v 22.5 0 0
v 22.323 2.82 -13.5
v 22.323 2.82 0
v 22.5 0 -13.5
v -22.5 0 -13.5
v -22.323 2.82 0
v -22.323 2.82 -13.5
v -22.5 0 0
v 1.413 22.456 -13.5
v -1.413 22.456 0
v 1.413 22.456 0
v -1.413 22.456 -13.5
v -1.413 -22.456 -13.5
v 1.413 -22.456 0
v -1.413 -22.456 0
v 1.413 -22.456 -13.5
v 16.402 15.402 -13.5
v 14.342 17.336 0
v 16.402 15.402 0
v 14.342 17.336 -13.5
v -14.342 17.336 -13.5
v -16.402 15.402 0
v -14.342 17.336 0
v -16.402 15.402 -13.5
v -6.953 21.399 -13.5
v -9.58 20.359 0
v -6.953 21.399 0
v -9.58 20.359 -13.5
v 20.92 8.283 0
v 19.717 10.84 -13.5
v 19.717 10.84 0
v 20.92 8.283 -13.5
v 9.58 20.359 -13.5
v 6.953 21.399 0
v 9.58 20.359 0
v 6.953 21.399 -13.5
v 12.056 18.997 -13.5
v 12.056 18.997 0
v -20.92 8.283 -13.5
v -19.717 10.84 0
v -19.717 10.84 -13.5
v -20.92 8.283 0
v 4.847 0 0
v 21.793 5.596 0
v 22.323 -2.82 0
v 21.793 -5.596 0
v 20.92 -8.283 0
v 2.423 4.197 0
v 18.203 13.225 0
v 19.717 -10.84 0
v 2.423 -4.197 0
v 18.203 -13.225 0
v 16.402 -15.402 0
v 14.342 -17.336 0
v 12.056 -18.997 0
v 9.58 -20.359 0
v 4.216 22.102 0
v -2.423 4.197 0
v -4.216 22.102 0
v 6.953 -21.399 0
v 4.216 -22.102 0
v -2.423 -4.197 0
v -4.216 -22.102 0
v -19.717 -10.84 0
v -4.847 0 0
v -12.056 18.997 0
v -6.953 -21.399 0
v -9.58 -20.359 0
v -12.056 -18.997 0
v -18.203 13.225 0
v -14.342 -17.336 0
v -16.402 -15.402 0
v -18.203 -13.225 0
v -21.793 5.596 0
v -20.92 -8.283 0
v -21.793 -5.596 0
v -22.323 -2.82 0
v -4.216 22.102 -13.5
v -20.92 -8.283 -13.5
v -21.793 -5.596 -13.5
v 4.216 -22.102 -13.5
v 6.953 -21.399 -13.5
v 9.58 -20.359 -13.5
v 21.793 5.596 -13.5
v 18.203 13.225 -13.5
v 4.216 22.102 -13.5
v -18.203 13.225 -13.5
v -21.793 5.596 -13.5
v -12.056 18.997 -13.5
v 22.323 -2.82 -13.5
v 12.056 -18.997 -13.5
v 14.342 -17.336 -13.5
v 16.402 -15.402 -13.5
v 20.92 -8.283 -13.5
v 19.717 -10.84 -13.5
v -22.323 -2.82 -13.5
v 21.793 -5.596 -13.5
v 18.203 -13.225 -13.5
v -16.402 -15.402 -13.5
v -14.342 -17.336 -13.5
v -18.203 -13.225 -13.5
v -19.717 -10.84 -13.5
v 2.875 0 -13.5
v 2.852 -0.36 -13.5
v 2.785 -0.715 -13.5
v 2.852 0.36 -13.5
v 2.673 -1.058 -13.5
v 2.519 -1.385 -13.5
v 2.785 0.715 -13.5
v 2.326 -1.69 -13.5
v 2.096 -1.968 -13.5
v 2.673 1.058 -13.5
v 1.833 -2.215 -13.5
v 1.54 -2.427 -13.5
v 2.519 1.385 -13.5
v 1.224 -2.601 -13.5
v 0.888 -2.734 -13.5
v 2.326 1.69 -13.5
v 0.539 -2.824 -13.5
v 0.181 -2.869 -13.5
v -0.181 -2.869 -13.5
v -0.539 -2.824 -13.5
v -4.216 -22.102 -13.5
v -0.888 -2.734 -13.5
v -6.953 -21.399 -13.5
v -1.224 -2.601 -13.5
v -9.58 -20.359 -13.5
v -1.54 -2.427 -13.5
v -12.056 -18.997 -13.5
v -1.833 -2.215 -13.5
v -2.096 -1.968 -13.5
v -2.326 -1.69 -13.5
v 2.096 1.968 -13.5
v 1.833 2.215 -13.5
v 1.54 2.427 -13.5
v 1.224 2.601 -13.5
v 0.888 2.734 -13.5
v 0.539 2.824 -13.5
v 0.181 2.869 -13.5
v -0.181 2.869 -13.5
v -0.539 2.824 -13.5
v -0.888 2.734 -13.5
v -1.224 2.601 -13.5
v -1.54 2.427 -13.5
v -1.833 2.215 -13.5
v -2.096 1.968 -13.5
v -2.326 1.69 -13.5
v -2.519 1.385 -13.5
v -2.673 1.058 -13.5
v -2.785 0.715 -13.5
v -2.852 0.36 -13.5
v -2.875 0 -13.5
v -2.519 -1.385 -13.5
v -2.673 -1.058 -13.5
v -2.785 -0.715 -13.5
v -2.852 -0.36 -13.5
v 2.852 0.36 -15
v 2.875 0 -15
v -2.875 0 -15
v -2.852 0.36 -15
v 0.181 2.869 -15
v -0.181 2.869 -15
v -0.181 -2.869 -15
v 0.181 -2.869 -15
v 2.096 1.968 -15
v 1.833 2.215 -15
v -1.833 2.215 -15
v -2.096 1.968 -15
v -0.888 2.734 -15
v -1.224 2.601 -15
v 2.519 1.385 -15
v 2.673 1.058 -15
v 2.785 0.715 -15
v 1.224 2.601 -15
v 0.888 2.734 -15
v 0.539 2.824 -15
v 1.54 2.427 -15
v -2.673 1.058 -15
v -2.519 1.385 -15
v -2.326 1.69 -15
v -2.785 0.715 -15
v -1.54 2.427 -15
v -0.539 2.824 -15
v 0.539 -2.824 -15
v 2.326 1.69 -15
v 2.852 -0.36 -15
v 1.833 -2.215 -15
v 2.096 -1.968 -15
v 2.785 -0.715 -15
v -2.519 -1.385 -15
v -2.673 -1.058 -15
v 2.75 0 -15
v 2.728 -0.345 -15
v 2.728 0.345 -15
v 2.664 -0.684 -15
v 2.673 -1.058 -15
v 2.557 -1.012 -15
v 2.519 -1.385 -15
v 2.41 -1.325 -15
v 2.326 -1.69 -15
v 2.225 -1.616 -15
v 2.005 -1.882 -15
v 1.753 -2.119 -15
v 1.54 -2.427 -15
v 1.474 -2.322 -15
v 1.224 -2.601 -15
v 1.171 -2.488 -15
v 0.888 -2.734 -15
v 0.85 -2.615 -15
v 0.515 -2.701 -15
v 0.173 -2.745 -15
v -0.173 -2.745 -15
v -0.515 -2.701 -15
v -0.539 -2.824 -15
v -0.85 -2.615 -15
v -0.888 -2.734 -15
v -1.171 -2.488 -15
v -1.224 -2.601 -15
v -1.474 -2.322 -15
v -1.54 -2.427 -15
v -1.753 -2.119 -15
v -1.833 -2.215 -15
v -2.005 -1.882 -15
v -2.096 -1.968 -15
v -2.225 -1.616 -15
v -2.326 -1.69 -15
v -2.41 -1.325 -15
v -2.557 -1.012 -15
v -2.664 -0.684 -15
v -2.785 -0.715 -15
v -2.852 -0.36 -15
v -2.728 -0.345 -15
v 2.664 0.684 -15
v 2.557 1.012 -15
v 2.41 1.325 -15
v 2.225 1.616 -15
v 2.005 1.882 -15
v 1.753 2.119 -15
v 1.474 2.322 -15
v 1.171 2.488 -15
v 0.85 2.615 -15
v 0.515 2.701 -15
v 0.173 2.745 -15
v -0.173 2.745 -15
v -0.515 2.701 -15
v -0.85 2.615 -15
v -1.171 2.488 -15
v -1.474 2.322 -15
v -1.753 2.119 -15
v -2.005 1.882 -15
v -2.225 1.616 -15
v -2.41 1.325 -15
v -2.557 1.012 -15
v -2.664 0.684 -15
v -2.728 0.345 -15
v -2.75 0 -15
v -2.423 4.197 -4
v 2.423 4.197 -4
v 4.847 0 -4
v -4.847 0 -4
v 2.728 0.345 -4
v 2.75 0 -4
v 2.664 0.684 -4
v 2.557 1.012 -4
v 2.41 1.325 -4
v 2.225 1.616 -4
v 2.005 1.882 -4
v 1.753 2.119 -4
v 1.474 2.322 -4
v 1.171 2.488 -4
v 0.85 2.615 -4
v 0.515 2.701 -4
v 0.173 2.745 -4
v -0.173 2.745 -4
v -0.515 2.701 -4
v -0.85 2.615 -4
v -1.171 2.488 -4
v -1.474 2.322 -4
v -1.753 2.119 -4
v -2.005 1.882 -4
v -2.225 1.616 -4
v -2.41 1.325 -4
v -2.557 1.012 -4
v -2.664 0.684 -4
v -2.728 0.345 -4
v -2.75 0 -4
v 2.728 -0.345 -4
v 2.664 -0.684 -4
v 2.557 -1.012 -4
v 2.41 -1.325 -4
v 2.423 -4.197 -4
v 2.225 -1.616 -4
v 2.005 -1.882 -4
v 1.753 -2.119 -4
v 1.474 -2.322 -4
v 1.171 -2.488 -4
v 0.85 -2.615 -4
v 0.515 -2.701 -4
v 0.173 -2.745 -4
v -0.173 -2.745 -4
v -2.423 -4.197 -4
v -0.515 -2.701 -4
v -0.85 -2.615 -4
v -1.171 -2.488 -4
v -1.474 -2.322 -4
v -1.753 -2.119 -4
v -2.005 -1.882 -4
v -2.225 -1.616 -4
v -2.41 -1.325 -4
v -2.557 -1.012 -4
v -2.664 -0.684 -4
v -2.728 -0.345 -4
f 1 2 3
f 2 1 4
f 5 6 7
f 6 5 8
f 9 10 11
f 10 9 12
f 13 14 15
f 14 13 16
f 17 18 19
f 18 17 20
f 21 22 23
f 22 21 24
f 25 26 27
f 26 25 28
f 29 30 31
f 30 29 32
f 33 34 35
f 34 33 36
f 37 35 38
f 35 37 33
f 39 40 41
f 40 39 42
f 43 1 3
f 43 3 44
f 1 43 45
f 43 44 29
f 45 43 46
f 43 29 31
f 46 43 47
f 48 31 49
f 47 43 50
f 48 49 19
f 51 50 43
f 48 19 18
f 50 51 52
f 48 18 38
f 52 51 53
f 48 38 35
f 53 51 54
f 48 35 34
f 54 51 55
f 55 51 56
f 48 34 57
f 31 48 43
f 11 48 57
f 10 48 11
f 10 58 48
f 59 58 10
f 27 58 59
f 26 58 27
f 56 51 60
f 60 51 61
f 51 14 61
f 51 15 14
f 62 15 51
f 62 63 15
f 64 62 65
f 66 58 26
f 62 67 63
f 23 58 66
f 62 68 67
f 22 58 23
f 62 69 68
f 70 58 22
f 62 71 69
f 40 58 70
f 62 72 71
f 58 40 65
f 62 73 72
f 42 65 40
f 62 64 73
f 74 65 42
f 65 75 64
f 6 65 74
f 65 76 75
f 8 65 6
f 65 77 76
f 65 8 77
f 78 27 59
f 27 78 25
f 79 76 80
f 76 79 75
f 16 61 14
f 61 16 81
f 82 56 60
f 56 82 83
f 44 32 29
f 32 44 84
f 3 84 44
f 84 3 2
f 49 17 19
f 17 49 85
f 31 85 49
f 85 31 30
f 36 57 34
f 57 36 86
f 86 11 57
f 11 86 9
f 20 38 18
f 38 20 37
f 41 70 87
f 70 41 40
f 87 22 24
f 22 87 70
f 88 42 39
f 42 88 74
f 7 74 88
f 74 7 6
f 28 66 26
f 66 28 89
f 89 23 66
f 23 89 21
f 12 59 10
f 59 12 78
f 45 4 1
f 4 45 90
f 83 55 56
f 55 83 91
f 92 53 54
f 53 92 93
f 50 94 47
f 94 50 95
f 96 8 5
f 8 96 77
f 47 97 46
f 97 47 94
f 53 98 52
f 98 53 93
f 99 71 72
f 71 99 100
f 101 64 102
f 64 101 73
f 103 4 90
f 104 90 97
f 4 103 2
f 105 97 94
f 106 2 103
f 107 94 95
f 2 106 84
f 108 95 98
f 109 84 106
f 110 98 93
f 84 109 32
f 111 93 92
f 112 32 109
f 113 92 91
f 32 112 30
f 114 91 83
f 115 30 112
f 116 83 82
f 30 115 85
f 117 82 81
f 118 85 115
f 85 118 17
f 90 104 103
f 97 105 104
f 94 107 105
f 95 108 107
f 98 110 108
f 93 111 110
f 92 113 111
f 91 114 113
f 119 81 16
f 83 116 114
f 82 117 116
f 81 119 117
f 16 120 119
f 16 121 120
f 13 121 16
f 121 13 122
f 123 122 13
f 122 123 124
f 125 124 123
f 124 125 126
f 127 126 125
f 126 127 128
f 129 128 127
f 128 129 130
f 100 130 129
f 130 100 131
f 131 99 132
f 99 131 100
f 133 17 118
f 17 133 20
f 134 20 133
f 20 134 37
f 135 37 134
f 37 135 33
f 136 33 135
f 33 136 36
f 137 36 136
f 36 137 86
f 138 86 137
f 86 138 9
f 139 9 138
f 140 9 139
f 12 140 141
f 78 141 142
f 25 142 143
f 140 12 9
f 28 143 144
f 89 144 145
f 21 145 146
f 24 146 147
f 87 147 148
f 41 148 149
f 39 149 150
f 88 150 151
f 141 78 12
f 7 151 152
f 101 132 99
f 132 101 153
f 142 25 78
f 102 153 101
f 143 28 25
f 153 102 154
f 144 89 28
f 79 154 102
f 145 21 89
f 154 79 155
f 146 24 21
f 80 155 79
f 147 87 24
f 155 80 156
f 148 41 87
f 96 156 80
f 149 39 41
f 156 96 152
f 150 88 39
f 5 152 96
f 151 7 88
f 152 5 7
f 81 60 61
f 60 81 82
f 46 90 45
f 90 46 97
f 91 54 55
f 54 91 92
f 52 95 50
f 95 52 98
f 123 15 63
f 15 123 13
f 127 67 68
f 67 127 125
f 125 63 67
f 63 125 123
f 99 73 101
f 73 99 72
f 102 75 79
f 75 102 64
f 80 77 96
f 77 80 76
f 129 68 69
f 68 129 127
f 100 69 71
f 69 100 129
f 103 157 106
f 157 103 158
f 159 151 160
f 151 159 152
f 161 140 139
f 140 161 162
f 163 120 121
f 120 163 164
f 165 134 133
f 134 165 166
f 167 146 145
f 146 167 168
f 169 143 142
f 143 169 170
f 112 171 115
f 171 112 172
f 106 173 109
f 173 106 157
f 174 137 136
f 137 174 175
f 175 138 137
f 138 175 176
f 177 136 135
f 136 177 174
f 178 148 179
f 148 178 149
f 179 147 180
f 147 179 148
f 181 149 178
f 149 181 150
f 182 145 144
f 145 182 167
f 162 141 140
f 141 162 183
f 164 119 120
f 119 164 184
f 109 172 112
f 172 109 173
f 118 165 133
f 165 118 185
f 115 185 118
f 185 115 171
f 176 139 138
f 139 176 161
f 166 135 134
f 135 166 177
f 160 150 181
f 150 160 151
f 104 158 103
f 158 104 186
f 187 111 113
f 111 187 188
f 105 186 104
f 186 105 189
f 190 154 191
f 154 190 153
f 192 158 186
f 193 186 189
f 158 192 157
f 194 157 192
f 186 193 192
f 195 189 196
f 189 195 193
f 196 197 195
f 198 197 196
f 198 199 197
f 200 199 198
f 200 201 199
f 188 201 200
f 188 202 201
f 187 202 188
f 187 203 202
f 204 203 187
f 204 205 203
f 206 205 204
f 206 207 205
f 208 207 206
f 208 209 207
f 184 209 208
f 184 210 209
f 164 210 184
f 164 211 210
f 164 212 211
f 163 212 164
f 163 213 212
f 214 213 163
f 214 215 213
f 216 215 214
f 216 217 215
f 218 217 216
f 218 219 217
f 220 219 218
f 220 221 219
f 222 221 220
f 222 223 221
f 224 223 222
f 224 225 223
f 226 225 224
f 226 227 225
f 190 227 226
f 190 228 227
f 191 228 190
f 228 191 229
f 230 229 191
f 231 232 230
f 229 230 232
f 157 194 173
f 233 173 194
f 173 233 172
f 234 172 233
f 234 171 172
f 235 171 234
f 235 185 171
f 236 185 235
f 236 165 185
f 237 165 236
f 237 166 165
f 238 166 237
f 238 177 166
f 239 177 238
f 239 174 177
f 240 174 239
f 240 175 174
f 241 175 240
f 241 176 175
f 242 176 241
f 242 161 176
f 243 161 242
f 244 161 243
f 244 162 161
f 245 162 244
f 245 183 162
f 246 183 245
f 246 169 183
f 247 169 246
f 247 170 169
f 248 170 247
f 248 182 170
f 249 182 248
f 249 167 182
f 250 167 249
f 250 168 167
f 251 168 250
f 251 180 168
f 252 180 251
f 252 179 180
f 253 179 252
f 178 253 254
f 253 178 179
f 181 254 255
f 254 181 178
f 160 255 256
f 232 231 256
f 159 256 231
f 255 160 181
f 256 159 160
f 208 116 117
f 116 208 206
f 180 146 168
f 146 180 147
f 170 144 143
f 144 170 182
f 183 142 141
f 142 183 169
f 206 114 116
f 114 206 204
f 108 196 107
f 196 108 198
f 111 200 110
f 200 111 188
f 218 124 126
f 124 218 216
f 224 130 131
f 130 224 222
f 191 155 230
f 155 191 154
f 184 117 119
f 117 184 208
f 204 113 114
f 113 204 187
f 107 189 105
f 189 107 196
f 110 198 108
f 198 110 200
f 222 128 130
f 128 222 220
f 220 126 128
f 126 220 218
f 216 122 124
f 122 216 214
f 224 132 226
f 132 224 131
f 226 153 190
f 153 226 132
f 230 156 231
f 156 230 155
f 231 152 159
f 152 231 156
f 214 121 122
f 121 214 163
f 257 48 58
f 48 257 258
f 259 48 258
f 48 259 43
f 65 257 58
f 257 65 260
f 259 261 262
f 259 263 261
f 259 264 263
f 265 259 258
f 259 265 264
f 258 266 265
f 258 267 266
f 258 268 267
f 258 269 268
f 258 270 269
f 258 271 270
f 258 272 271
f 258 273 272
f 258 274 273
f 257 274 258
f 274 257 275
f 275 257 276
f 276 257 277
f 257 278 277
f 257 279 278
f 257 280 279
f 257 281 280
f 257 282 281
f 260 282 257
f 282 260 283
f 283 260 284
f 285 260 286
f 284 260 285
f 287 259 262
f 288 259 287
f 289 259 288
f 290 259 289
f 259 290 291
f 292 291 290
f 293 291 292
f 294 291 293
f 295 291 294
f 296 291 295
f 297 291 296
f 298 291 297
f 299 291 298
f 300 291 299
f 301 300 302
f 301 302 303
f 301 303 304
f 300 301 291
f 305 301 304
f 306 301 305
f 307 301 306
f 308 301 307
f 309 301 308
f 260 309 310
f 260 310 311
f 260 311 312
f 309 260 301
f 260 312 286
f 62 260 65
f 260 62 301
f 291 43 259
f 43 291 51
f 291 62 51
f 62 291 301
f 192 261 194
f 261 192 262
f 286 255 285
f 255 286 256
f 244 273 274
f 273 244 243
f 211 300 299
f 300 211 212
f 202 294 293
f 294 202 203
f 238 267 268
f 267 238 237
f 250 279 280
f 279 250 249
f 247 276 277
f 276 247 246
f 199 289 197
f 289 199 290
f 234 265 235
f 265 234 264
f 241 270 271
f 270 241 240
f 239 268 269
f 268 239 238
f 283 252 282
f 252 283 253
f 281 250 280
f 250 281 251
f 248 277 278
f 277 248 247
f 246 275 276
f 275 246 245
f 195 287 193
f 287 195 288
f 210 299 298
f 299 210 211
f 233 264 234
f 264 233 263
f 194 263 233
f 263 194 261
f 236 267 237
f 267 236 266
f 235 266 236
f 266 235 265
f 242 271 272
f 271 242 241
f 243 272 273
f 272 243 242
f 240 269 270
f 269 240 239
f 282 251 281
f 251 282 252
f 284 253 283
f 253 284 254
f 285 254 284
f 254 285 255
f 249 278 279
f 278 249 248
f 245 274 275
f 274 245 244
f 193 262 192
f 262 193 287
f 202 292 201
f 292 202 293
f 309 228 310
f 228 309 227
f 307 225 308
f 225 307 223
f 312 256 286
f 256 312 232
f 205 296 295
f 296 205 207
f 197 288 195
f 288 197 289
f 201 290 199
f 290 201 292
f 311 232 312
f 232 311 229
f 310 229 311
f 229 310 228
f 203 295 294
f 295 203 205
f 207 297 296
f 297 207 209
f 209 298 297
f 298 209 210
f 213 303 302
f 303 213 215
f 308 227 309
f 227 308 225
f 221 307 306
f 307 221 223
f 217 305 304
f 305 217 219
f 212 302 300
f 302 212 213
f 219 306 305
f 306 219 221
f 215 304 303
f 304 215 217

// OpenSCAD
$fn = 50;


difference() {
	union() {
		translate(v = [0, 0, -13.5000000000]) {
			cylinder(h = 13.5000000000, r = 22.5000000000);
		}
		translate(v = [0, 0, -15.0000000000]) {
			cylinder(h = 15, r = 2.8750000000);
		}
	}
	union() {
		translate(v = [0, 0, 0]) {
			rotate(a = [0, 0, 0]) {
				difference() {
					union() {
						translate(v = [0, 0, -4]) {
							linear_extrude(height = 4) {
								polygon(points = [[4.8468000000, 0.0000000000], [2.4234000000, 4.1974519271], [-2.4234000000, 4.1974519271], [-4.8468000000, 0.0000000000], [-2.4234000000, -4.1974519271], [2.4234000000, -4.1974519271]]);
							}
						}
					}
					union();
				}
			}
		}
		#translate(v = [0, 0, -100.0000000000]) {
			cylinder(h = 200, r = 2.7500000000);
		}
	}
}
